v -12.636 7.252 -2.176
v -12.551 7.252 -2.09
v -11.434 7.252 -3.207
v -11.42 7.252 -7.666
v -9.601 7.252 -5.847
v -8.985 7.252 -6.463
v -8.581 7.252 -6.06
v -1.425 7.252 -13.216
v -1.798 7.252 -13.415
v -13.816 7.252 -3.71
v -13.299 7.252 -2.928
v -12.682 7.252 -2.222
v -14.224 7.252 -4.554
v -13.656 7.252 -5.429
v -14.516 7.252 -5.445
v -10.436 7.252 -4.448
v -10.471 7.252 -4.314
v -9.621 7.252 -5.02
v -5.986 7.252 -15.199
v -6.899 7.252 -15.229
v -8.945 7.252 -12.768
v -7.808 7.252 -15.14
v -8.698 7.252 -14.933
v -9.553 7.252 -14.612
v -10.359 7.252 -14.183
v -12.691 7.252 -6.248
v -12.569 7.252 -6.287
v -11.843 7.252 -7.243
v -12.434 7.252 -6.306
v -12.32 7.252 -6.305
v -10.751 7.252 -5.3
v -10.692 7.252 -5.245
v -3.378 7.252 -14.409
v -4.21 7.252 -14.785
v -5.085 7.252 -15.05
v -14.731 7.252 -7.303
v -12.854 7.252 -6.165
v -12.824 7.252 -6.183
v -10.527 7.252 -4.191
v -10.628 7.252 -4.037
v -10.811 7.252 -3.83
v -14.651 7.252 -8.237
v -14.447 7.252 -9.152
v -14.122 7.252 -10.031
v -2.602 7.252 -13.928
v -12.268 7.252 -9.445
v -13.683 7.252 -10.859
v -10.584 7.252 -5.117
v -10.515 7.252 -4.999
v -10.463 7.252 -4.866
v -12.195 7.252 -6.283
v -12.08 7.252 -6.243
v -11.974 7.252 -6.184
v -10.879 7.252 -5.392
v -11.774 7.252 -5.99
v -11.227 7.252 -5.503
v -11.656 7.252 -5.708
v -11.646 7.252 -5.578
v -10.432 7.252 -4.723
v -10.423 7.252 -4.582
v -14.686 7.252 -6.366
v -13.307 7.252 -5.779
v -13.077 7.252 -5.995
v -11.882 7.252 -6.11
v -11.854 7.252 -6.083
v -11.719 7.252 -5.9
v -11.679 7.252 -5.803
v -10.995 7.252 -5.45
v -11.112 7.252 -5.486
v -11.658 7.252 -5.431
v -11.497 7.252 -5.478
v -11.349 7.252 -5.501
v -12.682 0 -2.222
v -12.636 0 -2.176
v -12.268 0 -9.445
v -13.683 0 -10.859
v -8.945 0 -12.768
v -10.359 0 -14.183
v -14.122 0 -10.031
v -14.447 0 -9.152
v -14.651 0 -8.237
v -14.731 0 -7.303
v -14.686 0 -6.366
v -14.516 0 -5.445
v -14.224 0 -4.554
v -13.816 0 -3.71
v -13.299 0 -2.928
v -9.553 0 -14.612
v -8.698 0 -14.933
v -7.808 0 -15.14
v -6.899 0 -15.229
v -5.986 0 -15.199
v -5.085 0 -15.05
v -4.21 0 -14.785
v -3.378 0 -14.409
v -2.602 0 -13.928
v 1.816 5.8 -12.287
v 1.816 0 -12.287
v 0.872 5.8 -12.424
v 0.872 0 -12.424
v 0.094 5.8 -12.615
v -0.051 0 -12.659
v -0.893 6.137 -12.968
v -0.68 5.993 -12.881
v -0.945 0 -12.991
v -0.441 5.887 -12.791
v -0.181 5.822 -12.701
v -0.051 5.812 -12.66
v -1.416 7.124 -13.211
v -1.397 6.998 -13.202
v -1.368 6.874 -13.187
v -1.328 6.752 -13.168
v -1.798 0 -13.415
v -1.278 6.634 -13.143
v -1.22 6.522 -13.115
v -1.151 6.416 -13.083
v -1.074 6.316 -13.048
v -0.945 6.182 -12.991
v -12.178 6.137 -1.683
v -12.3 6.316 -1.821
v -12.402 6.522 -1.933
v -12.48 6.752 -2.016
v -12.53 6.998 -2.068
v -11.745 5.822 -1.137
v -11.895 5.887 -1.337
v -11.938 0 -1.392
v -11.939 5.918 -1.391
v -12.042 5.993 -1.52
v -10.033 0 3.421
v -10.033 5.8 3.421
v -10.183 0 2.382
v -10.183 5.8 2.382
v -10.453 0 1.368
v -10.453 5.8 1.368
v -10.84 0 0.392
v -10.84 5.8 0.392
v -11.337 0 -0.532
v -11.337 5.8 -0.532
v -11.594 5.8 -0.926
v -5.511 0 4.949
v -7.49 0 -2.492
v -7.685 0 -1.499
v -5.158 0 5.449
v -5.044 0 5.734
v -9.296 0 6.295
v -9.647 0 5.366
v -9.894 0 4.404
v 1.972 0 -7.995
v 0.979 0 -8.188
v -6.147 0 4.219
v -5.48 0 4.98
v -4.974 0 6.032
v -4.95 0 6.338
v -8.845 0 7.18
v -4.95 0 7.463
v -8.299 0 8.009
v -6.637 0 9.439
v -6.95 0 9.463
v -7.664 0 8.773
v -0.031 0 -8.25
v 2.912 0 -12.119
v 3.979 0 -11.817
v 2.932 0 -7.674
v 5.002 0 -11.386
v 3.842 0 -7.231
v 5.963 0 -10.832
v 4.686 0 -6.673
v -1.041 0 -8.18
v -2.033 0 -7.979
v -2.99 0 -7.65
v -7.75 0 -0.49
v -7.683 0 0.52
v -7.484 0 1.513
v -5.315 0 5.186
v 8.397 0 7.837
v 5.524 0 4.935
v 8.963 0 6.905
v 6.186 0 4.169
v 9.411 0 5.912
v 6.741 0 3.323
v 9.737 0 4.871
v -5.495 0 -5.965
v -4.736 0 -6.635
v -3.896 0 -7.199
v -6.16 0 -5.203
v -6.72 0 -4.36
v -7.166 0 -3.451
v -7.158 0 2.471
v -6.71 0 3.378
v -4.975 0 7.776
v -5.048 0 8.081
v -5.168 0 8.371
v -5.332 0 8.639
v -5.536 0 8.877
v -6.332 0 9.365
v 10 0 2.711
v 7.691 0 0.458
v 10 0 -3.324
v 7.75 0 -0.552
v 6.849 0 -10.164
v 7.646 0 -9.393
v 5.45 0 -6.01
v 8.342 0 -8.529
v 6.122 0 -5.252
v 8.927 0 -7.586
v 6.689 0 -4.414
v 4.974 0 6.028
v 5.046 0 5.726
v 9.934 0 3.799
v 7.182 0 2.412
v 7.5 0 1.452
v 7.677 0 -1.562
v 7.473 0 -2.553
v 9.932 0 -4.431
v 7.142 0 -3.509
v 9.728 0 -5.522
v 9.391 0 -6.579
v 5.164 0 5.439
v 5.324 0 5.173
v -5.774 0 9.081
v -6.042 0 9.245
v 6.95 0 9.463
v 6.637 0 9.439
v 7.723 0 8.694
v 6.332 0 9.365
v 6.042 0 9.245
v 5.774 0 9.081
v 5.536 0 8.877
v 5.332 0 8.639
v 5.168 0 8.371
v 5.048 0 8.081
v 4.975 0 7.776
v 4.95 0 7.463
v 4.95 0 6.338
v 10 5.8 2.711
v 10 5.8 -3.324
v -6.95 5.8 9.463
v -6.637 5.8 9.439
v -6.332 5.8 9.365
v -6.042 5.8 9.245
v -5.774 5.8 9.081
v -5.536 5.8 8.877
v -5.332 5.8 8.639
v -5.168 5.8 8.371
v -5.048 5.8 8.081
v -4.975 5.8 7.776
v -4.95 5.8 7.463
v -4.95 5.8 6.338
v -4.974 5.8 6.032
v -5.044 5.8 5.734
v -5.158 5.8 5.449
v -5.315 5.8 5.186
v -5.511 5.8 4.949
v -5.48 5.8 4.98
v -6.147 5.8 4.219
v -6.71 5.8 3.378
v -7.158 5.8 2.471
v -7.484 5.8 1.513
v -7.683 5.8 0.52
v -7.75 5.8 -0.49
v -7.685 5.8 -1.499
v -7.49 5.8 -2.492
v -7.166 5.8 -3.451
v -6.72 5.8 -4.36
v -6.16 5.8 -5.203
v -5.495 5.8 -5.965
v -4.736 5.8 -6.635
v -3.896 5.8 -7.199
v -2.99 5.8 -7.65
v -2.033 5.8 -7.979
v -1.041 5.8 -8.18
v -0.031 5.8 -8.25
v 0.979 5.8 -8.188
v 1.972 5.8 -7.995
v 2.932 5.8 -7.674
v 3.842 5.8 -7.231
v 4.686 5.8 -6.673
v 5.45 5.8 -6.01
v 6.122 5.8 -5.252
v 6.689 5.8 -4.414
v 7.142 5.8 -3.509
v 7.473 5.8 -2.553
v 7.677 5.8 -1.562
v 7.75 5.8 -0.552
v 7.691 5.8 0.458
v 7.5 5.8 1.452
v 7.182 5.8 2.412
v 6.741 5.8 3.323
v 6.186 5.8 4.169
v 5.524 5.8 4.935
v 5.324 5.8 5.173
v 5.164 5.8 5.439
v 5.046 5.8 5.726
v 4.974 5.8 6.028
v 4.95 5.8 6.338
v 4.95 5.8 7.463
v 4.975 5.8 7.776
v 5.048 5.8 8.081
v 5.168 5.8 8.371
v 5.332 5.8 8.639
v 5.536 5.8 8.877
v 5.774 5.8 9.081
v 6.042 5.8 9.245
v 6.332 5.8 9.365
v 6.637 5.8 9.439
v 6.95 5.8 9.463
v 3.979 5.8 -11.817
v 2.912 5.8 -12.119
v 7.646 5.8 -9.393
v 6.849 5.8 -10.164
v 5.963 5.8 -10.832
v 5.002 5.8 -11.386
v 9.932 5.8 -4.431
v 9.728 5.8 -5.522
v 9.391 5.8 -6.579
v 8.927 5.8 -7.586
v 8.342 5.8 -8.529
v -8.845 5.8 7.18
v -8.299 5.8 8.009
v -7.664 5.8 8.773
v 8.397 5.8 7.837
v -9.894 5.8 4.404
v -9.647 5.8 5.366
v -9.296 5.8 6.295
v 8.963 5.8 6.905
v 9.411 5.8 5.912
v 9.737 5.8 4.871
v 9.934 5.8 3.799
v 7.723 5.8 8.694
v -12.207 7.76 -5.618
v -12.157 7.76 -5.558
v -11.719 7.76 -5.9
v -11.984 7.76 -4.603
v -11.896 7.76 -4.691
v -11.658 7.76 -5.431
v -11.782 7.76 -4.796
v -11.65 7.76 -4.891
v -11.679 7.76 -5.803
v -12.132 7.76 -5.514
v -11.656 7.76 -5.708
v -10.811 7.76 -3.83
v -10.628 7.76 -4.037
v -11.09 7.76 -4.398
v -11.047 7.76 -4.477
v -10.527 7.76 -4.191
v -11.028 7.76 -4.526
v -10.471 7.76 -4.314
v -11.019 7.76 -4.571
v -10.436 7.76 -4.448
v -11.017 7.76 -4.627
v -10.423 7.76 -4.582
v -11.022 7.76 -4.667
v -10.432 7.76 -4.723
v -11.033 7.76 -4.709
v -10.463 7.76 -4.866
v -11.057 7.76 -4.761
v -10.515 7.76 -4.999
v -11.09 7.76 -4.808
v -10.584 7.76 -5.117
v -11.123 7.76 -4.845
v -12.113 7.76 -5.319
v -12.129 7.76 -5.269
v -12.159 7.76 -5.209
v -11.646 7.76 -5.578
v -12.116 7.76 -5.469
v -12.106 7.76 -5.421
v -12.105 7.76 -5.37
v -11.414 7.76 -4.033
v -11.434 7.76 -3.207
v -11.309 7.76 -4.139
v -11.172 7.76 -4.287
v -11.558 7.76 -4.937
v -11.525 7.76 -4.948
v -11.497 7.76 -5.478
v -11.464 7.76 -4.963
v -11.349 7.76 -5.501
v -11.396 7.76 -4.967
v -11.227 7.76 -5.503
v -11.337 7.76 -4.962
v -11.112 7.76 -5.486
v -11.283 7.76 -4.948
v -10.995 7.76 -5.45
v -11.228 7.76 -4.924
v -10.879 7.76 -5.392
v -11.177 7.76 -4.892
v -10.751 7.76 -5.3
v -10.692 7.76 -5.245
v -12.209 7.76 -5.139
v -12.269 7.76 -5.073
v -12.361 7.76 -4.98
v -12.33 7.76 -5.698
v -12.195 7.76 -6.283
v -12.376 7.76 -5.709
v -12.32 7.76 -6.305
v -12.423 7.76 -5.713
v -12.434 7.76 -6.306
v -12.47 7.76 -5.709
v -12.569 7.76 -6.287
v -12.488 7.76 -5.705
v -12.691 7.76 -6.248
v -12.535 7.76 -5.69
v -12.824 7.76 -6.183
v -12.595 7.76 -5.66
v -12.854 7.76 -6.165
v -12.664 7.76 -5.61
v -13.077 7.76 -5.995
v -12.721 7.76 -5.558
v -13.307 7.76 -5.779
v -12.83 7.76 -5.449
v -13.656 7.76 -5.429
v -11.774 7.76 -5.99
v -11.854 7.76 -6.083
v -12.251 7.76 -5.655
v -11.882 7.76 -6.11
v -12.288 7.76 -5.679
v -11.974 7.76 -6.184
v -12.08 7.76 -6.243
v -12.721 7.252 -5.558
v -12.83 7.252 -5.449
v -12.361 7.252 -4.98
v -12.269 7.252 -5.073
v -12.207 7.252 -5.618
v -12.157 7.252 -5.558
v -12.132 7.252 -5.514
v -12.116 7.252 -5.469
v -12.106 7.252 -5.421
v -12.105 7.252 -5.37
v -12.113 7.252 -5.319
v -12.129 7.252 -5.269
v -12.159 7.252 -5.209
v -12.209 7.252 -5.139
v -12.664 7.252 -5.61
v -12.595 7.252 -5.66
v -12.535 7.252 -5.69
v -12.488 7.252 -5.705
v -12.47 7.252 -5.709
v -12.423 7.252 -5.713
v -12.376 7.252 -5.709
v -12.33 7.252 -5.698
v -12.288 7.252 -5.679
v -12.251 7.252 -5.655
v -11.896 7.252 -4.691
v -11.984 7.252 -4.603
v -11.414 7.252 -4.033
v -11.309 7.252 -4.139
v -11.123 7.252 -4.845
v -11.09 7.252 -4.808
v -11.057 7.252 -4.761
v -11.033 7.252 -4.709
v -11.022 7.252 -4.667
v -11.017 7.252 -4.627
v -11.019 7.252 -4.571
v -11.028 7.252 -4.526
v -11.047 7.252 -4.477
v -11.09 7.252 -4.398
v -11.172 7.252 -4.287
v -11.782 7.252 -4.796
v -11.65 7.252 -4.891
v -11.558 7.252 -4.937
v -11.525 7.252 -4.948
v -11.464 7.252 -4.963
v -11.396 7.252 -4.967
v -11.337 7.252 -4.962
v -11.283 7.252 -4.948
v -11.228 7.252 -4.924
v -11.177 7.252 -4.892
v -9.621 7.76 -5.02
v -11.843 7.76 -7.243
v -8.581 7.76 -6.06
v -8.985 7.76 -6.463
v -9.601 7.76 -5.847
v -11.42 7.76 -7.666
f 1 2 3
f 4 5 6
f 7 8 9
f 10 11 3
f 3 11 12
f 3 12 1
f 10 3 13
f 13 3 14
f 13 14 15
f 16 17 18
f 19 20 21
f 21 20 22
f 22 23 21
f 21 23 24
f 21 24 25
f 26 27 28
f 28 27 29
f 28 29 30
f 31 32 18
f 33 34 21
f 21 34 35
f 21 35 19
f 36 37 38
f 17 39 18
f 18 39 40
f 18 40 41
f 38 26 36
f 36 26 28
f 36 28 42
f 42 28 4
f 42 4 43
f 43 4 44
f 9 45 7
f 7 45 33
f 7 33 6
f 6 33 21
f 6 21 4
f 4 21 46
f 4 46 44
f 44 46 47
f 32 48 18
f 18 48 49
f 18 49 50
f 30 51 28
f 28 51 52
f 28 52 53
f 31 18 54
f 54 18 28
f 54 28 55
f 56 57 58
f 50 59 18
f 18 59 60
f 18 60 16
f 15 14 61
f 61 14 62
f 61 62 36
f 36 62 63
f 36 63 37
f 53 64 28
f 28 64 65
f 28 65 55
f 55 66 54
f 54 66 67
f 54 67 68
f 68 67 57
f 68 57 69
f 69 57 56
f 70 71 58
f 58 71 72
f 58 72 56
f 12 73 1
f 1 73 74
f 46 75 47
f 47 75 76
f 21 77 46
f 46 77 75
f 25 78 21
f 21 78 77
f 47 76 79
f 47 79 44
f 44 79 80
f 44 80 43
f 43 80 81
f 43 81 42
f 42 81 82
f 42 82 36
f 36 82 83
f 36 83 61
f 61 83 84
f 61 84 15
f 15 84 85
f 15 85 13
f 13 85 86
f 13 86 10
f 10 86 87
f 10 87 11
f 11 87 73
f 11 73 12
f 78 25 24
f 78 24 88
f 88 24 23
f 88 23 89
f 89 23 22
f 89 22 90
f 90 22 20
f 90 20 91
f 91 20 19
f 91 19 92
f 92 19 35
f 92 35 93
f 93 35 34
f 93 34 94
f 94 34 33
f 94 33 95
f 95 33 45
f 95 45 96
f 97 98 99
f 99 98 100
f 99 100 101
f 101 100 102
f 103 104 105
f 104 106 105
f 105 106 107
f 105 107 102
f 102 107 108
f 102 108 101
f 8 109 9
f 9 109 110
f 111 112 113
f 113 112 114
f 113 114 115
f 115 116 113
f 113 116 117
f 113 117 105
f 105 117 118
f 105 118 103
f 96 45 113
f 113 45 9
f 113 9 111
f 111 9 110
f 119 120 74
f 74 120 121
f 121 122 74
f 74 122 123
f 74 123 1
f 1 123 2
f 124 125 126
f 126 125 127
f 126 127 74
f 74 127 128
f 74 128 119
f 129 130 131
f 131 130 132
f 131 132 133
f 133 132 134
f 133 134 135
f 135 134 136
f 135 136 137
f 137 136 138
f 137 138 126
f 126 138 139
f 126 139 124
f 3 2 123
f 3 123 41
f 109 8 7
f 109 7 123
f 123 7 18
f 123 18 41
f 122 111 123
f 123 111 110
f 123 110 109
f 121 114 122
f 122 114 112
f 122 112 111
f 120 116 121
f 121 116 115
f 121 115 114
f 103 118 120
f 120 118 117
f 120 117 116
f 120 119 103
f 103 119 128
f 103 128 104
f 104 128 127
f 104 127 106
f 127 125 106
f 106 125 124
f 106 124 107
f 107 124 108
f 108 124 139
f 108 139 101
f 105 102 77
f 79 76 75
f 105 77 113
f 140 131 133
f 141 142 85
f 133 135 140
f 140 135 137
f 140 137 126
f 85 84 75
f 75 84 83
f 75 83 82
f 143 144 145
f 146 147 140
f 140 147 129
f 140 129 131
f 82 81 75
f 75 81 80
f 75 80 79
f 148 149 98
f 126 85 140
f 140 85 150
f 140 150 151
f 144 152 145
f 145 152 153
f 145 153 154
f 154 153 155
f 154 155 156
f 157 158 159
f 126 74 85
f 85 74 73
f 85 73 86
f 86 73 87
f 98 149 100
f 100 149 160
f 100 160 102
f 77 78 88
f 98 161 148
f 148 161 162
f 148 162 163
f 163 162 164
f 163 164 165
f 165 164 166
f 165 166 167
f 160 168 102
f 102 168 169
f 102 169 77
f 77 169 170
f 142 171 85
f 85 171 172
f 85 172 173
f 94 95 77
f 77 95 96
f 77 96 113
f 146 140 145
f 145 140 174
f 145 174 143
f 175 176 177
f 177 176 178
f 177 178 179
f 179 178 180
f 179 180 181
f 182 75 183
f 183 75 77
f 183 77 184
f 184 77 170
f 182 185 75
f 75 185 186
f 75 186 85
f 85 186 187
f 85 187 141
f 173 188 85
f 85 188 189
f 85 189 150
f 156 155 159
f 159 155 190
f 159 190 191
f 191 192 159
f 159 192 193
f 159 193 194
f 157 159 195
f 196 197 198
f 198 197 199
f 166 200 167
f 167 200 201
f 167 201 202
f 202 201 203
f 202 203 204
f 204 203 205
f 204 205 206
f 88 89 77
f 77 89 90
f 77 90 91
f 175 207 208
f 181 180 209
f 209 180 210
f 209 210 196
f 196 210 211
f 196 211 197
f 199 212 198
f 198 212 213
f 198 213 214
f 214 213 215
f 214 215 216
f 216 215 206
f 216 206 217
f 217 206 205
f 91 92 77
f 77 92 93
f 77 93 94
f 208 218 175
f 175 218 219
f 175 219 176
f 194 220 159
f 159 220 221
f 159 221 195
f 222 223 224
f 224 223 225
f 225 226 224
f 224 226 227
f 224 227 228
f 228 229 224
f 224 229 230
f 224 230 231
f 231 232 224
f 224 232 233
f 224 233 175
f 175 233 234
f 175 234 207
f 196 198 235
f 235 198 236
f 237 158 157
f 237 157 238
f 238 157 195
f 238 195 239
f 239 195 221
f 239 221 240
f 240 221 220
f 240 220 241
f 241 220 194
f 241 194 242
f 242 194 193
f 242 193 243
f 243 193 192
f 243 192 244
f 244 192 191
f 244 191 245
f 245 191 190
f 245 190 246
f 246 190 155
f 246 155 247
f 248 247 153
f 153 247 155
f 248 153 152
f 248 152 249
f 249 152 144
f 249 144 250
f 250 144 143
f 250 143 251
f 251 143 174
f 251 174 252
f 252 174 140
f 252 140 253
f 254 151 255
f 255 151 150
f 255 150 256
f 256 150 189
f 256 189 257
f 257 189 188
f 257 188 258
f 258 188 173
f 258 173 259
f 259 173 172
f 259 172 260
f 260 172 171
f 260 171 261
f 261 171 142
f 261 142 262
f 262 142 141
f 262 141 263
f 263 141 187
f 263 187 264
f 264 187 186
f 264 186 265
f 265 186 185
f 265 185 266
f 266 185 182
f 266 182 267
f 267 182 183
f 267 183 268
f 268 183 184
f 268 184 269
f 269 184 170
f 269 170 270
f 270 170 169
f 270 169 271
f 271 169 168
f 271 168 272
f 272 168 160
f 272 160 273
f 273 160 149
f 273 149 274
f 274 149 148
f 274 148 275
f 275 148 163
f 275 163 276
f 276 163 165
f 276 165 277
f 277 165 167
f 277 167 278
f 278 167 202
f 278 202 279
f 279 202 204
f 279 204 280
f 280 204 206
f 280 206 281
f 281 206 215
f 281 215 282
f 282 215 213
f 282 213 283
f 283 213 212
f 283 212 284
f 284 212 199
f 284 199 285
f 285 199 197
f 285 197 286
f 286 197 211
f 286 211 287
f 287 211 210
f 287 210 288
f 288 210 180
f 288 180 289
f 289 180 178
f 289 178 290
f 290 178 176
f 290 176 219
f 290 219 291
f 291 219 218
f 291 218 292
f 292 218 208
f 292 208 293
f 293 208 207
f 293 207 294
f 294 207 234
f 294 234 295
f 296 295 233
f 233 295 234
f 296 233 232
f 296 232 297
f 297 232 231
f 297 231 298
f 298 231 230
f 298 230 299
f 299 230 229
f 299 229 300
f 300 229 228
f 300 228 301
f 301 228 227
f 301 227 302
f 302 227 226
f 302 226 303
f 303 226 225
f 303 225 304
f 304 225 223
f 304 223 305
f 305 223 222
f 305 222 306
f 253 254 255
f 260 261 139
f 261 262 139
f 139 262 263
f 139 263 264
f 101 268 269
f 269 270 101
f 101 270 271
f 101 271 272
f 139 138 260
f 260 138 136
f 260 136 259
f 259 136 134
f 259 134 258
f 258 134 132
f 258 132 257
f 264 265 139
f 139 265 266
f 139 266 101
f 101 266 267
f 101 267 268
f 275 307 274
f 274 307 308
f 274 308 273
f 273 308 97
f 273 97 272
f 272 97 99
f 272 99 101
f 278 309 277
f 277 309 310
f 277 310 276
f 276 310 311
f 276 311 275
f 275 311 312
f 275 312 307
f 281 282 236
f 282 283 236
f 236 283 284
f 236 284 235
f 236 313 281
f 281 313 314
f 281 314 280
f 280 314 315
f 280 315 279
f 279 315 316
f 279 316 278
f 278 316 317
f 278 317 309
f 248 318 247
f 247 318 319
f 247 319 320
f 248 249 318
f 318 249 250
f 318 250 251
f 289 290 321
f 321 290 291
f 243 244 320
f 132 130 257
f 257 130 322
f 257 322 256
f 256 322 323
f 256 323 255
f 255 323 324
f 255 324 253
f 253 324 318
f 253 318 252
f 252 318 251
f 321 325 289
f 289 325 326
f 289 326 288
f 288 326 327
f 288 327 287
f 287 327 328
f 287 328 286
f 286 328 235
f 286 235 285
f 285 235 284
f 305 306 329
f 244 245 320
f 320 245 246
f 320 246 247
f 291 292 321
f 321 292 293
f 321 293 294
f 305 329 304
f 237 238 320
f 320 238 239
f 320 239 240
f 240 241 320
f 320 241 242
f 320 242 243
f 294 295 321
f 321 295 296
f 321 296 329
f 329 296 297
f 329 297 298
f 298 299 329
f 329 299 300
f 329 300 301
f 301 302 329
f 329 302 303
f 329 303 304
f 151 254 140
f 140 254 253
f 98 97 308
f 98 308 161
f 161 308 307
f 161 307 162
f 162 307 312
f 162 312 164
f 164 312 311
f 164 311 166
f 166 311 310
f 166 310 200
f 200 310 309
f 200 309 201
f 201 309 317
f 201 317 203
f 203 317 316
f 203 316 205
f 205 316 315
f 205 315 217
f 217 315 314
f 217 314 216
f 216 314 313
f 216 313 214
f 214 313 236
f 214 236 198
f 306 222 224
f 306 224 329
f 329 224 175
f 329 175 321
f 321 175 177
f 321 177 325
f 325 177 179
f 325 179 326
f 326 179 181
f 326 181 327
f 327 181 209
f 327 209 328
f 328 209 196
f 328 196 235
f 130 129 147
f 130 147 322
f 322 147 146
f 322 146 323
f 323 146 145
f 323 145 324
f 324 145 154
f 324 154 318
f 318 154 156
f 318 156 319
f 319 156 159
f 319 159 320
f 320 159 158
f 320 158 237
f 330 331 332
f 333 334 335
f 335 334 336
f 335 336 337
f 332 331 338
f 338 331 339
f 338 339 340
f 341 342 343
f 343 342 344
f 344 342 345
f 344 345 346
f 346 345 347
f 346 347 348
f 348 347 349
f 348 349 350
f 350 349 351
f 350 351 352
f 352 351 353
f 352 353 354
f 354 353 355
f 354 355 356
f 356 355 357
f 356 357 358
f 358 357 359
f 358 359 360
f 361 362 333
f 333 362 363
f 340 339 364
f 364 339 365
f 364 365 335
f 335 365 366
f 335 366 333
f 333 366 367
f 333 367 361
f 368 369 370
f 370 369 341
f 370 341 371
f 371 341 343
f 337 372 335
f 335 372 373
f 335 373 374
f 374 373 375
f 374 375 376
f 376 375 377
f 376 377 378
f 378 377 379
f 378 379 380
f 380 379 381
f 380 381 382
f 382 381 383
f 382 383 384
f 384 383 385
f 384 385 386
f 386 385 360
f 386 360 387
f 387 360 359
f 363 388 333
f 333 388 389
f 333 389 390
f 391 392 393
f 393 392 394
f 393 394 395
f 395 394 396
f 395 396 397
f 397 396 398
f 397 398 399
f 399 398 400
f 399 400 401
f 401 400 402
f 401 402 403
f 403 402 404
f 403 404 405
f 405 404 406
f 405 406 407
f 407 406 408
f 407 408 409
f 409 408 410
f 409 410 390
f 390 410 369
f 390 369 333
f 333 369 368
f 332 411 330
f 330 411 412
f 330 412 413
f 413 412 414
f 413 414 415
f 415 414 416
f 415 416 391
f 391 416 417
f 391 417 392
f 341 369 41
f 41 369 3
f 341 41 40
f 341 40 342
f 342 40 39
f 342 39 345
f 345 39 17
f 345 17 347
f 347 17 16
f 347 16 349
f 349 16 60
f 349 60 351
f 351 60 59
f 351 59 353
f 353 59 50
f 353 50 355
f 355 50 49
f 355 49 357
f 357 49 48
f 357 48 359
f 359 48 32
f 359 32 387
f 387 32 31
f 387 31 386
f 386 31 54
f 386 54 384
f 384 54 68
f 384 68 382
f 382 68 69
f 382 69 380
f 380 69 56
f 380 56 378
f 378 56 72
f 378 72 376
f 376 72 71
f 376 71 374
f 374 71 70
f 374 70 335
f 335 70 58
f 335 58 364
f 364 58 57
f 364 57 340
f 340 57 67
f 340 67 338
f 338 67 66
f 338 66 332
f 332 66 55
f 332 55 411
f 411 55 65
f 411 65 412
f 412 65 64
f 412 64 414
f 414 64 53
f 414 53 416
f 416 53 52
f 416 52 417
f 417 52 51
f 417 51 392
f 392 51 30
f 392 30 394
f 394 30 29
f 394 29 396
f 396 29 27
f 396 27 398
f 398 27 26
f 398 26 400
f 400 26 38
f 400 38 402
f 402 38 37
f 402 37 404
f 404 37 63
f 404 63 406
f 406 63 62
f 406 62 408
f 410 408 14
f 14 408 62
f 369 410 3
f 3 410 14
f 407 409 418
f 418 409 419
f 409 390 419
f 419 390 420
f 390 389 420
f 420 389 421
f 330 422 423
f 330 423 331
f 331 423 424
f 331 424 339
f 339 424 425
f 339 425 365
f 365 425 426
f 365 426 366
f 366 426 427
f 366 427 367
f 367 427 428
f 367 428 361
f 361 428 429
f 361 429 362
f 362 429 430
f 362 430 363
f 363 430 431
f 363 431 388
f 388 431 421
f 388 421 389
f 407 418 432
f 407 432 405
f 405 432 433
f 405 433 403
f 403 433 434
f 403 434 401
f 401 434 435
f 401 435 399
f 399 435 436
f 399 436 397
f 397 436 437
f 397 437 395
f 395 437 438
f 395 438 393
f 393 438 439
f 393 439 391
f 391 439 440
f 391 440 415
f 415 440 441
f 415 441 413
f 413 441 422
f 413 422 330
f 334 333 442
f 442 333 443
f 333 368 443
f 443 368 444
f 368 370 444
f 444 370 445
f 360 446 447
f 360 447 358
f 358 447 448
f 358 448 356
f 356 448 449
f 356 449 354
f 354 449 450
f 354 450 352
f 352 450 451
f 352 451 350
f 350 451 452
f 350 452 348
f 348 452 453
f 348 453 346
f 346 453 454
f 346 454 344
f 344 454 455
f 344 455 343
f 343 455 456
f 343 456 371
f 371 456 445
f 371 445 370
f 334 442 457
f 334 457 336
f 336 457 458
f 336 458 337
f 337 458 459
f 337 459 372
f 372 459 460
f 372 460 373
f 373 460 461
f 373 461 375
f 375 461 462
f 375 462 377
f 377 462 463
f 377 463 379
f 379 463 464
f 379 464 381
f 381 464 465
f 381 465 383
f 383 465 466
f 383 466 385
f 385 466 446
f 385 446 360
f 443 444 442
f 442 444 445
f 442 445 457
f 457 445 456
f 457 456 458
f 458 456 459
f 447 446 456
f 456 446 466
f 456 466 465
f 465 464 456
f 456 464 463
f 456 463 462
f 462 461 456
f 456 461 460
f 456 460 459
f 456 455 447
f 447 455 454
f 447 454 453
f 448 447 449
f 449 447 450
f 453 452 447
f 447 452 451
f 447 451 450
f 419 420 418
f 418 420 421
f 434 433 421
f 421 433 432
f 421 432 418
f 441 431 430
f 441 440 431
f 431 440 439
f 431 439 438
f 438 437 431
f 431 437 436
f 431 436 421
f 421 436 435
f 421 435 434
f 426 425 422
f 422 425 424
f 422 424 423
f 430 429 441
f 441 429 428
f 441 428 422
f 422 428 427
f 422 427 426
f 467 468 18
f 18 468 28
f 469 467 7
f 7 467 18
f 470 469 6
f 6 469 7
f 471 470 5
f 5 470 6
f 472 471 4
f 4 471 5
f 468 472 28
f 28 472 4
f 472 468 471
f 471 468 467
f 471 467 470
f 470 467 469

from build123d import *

# Parameters (mm, degrees)
BOSS_EXTRUDE1_DEPTH     = 5.8
BOSS_EXTRUDE2_START     = -5.8
BOSS_EXTRUDE2_DEPTH     = 5.8
BOSS_EXTRUDE3_DEPTH     = 4.5
CUT_EXTRUDE1_DEPTH      = 26.767293083
CUT_EXTRUDE1_DEPTH_BACK = 26.767293083
FILLET6_R               = 7
FILLET7_R               = 7
FILLET8_R               = 9
FILLET9_R               = 9
FILLET10_R              = 9
FILLET11_R              = 9
FILLET12_DEPTH          = 5.8
FILLET13_R              = 1.5
SKETCH11_W              = 22.477586639
SKETCH11_H              = 16.715029759
CUT_EXTRUDE3_DEPTH      = 3.048
BOSS_EXTRUDE4_DEPTH     = 0.508


with BuildPart() as part:
    # Sketch1 → Boss-Extrude1 (new body)
    with BuildSketch(Plane(origin=(0, 0, 0), x_dir=(1, 0, 0), z_dir=(0, 1, 0))):
        with BuildLine():
            Line((10, 12.25), (-10, 12.25))
            Line((-10, 12.25), (-10, -7.463220606))
            Line((-10, -7.463220606), (-10, -9.463220606))
            Line((-10, -9.463220606), (-8, -9.463220606))
            Line((-8, -9.463220606), (-6.95, -9.463220606))
            ThreePointArc((-6.95, -9.463220606), (-5.535786438, -8.877434169), (-4.95, -7.463220606))
            Line((-4.95, -7.463220606), (-4.95, -6.338128399))
            ThreePointArc((-4.95, -6.338128399), (-5.099151269, -5.580263652), (-5.524358974, -4.935435394))
            ThreePointArc((-5.524358974, -4.935435394), (0, 8.25), (5.524358974, -4.935435394))
            ThreePointArc((5.524358974, -4.935435394), (5.099151269, -5.580263652), (4.95, -6.338128399))
            Line((4.95, -6.338128399), (4.95, -7.463220606))
            ThreePointArc((4.95, -7.463220606), (5.535786438, -8.877434169), (6.95, -9.463220606))
            Line((6.95, -9.463220606), (8, -9.463220606))
            Line((8, -9.463220606), (10, -9.463220606))
            Line((10, -9.463220606), (10, -7.463220606))
            Line((10, -7.463220606), (10, 12.25))
        make_face()
    extrude(amount=BOSS_EXTRUDE1_DEPTH)

    # Sketch5 → Boss-Extrude2 (add)
    with BuildSketch(Plane(origin=(0, 5.8, 0), x_dir=(1, 0, 0), z_dir=(0, 1, 0)).offset(BOSS_EXTRUDE2_START)):
        with BuildLine():
            Line((5.480077554, 5.980077554), (-6.540737726, 18.000892834))
            Line((-6.540737726, 18.000892834), (-17.500892834, 7.040737726))
            Line((-17.500892834, 7.040737726), (-5.480077554, -4.980077554))
            ThreePointArc((-5.480077554, -4.980077554), (-5.480077554, 5.980077554), (5.480077554, 5.980077554))
        make_face()
    extrude(amount=BOSS_EXTRUDE2_DEPTH)

    # Sketch7 → Boss-Extrude3 (add)
    with BuildSketch(Plane(origin=(0, 5.8, 0), x_dir=(1, 0, 0), z_dir=(0, 1, 0))):
        Polygon((-1.590990258, 13.051145366), (-6.540737726, 18.000892834), (-17.500892834, 7.040737726), (-12.551145366, 2.090990258), align=None)
    extrude(amount=BOSS_EXTRUDE3_DEPTH)

    # Sketch8 → Cut-Extrude1 (cut, two sides: drawn at the far end of the back side and taken through both)
    with BuildSketch(Plane(origin=(0, 5.8, 0), x_dir=(1, 0, 0), z_dir=(0, 1, 0)).offset(-CUT_EXTRUDE1_DEPTH_BACK)):
        Polygon((-10.359114344, 14.182516216), (-8.944900782, 12.768302654), (-12.268302654, 9.444900782), (-13.682516216, 10.859114344), align=None)
    extrude(amount=CUT_EXTRUDE1_DEPTH + CUT_EXTRUDE1_DEPTH_BACK, mode=Mode.SUBTRACT)

    # Fillet6
    # the kernel refuses this fillet: 7 mm, written as the material it takes off along each edge
    with BuildSketch(Plane(origin=(-17.500892834, -17.036725037, -7.040737726), x_dir=(0.7071067811865471, 0, 0.707106781186548), z_dir=(0, 1, 0))) as fillet6_piece_1:
        with BuildLine():
            CenterArc((6.814690015, 7), FILLET6_R, 193.21298036, 76.78701964)
            Line((0, 5.4), (-0.1362938, 5.368))
            ThreePointArc((-0.1362938, 5.368), (-0.14, 2.7), (-0.14, 0))
            Line((-0.14, 0), (0, -0.14))
            Line((0, -0.14), (6.814690015, -0.14))
            Line((6.814690015, -0.14), (6.814690015, 0))
        make_face()
    extrude(amount=44.373450075, mode=Mode.SUBTRACT)

    # Fillet7
    # the kernel refuses this fillet: 7 mm, written as the material it takes off along each edge
    with BuildSketch(Plane(origin=(-6.540737726, -17.036725037, -18.000892834), x_dir=(-0.7071067811865467, 0, 0.7071067811865485), z_dir=(0, 1, 0))) as fillet7_piece_1:
        with BuildLine():
            CenterArc((7, 6.814690015), FILLET7_R, 180, 76.78701964)
            Line((0, 6.814690015), (-0.14, 6.814690015))
            Line((-0.14, 6.814690015), (-0.14, 0))
            Line((-0.14, 0), (0, -0.14))
            ThreePointArc((0, -0.14), (2.7, -0.14), (5.368, -0.1362938))
            Line((5.368, -0.1362938), (5.4, 0))
        make_face()
    extrude(amount=44.373450075, mode=Mode.SUBTRACT)

    # Fillet8
    # the kernel refuses this fillet: 9 mm, written as the material it adds along each edge
    with BuildSketch(Plane(origin=(-0.789844892, 14.352294771, -12.25), x_dir=(-0.7337802799425581, 0, -0.6793868564870981), z_dir=(0, -1, 0))) as fillet8_piece_1_section:
        with BuildLine():
            CenterArc((3.604279608, 8.928149184), FILLET8_R, 227.204251593, 35.551028785)
            Line((-2.510202101, 2.324126664), (-3.121650271, 1.663724412))
            Line((-3.121650271, 1.663724412), (-0.611448171, -0.660402252))
            Line((-0.611448171, -0.660402252), (0.034615763, -0.899334059))
            ThreePointArc((0.034615763, -0.899334059), (1.351940933, -0.848629634), (2.355814908, -0.892814918))
            Line((2.355814908, -0.892814918), (2.469311699, 0))
        make_face()
    fillet8_piece_1 = extrude(amount=14.352294771, mode=Mode.PRIVATE)
    fillet8_piece_1 = split(fillet8_piece_1, bisect_by=Plane(origin=(-0.789844892, 5.8, -12.25), z_dir=(0, 1, 0)), keep=Keep.TOP, mode=Mode.PRIVATE)
    fillet8_piece_1 = split(fillet8_piece_1, bisect_by=Plane(origin=(-0.789844892, 10.3, -12.25), z_dir=(0, -1, 0)), keep=Keep.TOP, mode=Mode.PRIVATE)
    fillet8_piece_1 = split(fillet8_piece_1, bisect_by=Plane(origin=(-1.590990258, 14.352294771, -13.051145366), z_dir=(-0.7071067811865475, 0, -0.7071067811865476)), keep=Keep.TOP, mode=Mode.PRIVATE)
    add(fillet8_piece_1)
    with BuildSketch(Plane(origin=(-0.789844892, 5.8, -12.25), x_dir=(-0.7337802799425581, 0, -0.6793868564870981), z_dir=(0, -1, 0))) as fillet8_piece_2_section:
        with BuildLine():
            CenterArc((3.604279608, 8.928149184), FILLET8_R, 227.204251593, 35.551028785)
            Line((-2.510202101, 2.324126664), (-3.121650271, 1.663724412))
            Line((-3.121650271, 1.663724412), (-0.611448171, -0.660402252))
            Line((-0.611448171, -0.660402252), (0.034615763, -0.899334059))
            ThreePointArc((0.034615763, -0.899334059), (1.351940933, -0.848629634), (2.355814908, -0.892814918))
            Line((2.355814908, -0.892814918), (2.469311699, 0))
        make_face()
    fillet8_piece_2 = extrude(amount=5.8, mode=Mode.PRIVATE)
    fillet8_piece_2 = split(fillet8_piece_2, bisect_by=Plane(origin=(-1.590990258, 5.8, -13.051145366), z_dir=(-0.7071067811865475, 0, -0.7071067811865476)), keep=Keep.TOP, mode=Mode.PRIVATE)
    add(fillet8_piece_2)
    with BuildSketch(Plane(origin=(-0.789844892, 5.8, -12.25), x_dir=(-0.7337802799425581, 0, -0.6793868564870981), z_dir=(0, -1, 0))) as fillet8_piece_3_section:
        with BuildLine():
            CenterArc((3.604279608, 8.928149184), FILLET8_R, 227.204251593, 35.551028785)
            Line((-2.510202101, 2.324126664), (-3.121650271, 1.663724412))
            Line((-3.121650271, 1.663724412), (-0.611448171, -0.660402252))
            Line((-0.611448171, -0.660402252), (0.034615763, -0.899334059))
            ThreePointArc((0.034615763, -0.899334059), (1.351940933, -0.848629634), (2.355814908, -0.892814918))
            Line((2.355814908, -0.892814918), (2.469311699, 0))
        make_face()
    fillet8_piece_3 = extrude(amount=5.8, mode=Mode.PRIVATE)
    fillet8_piece_3 = split(fillet8_piece_3, bisect_by=Plane(origin=(-1.590990258, 5.8, -13.051145366), z_dir=(0.7071067811865475, 0, 0.7071067811865476)), keep=Keep.TOP, mode=Mode.PRIVATE)
    add(fillet8_piece_3)

    # Fillet9
    fillet9_edges = [part.edges().sort_by_distance(p)[0] for p in [
        (10, 2.9, -12.25),
    ]]
    fillet(fillet9_edges, radius=FILLET9_R)

    # Fillet10
    fillet10_edges = [part.edges().sort_by_distance(p)[0] for p in [
        (-10, 2.9, 0.460155108),
    ]]
    fillet(fillet10_edges, radius=FILLET10_R)

    # Fillet11
    # the kernel refuses this fillet: 9 mm, written as the material it takes off along each edge
    with BuildSketch(Plane(origin=(10, -16.881480237, 9.463220606), x_dir=(0, 0, -1), z_dir=(0, 1, 0))) as fillet11_piece_1:
        with BuildLine():
            CenterArc((6.752592095, 9), FILLET11_R, 221.384667587, 48.615332413)
            Line((0, 3.05), (0, 0))
            Line((0, 0), (6.752592095, 0))
        make_face()
    extrude(amount=39.562960474, mode=Mode.SUBTRACT)

    # Fillet12: read off the stored shape, not the designer's step
    # Fillet12 outline → Fillet12 (cut)
    with BuildSketch(Plane(origin=(0, 0, 0), x_dir=(1, 0, 0), z_dir=(0, 1, 0))):
        with BuildLine():
            Line((-10, -9.463220606), (-6.95, -9.463220606))
            ThreePointArc((-6.95, -9.463220606), (-9.082460071, -6.743546791), (-10.032769562, -3.42075828))
            ThreePointArc((-10.032769562, -3.42075828), (-10.008196123, -3.804068015), (-10, -4.18807717))
            Line((-10, -4.18807717), (-10, -9.463220606))
        make_face()
    extrude(amount=FILLET12_DEPTH, mode=Mode.SUBTRACT)

    # Fillet13
    fillet13_edges = [part.edges().sort_by_distance(p)[0] for p in [
        (-6.988797537, 5.8, -7.653338087),
    ]]
    fillet(fillet13_edges, radius=FILLET13_R)

    # Sketch11 → Cut-Extrude3 (cut)
    with BuildSketch(Plane(origin=(0, 10.3, 0), x_dir=(1, 0, 0), z_dir=(0, 1, 0))):
        with Locations((-8.183279801, 8.85751488)):
            Rectangle(SKETCH11_W, SKETCH11_H)
    extrude(amount=-CUT_EXTRUDE3_DEPTH, mode=Mode.SUBTRACT)

    # Sketch12 → Boss-Extrude4 (add)
    # profile 1 of 2: a face of its own
    with BuildSketch(Plane(origin=(0, 7.252, 0), x_dir=(1, 0, 0), z_dir=(0, 1, 0))):
        with BuildLine():
            Line((-11.433918494, 3.207130735), (-13.656164087, 5.429376328))
            Line((-13.656164087, 5.429376328), (-13.306990409, 5.778550006))
            add(Edge.make_bspline(
                [(-13.306990409, 5.778550006), (-13.282454925, 5.802776429), (-13.234978761, 5.849654556), (-13.165425965, 5.916476582), (-13.098874205, 5.976521512), (-13.036503263, 6.030151615), (-12.978079516, 6.077802204), (-12.923873082, 6.119198581), (-12.872751416, 6.153785376), (-12.839393353, 6.173658456), (-12.823617012, 6.183057218)],
                knots=[0, 0, 0, 0, 1.309509407, 2.53390071, 3.662611673, 4.713207521, 5.65757546, 6.525538268, 7.302669039, 8, 8, 8, 8], degree=3))
            add(Edge.make_bspline(
                [(-12.823617012, 6.183057218), (-12.802788726, 6.194609559), (-12.761621022, 6.217443093), (-12.697895295, 6.245762593), (-12.634133803, 6.269757801), (-12.56983835, 6.287547266), (-12.505336684, 6.299591985), (-12.440703357, 6.30663579), (-12.375602361, 6.30874407), (-12.310534388, 6.304682079), (-12.246186103, 6.296126998), (-12.183706133, 6.281210456), (-12.123192616, 6.26165718), (-12.064977726, 6.236536624), (-12.008583815, 6.206665212), (-11.954657564, 6.170648612), (-11.90197945, 6.130230589), (-11.86992907, 6.099017275), (-11.853690129, 6.08320245)],
                knots=[0, 0, 0, 0, 1.084350962, 2.143250767, 3.172862443, 4.184936649, 5.177333569, 6.158390596, 7.143762693, 8.140051288, 9.124666062, 10.096699818, 11.061657142, 12.017683079, 12.981044671, 13.963953334, 14.96839786, 16, 16, 16, 16], degree=3))
            add(Edge.make_bspline(
                [(-11.853690129, 6.08320245), (-11.833695098, 6.061786816), (-11.794496473, 6.019803215), (-11.744824985, 5.950445998), (-11.706053697, 5.876556968), (-11.675627227, 5.798838873), (-11.654783836, 5.715764393), (-11.646075384, 5.626358621), (-11.645711155, 5.530411251), (-11.653667868, 5.464730746), (-11.657796699, 5.430648363)],
                knots=[0, 0, 0, 0, 0.99067682, 1.942141011, 2.875945802, 3.80710181, 4.760510965, 5.763396677, 6.839400355, 8, 8, 8, 8], degree=3))
            add(Edge.make_bspline(
                [(-11.657796699, 5.430648363), (-11.633275636, 5.438929098), (-11.585409595, 5.455093403), (-11.51376359, 5.47510442), (-11.443865679, 5.489816624), (-11.375836479, 5.499196125), (-11.310000456, 5.504659461), (-11.245981468, 5.504624925), (-11.183832662, 5.499731758), (-11.123495787, 5.489260877), (-11.064806043, 5.474646149), (-11.007384688, 5.455511461), (-10.951320622, 5.43180242), (-10.896328629, 5.404097033), (-10.843692728, 5.370224131), (-10.791123294, 5.333853803), (-10.74086075, 5.291293515), (-10.708700331, 5.26057519), (-10.69232194, 5.244931216)],
                knots=[0, 0, 0, 0, 1.186823522, 2.316724293, 3.409365292, 4.459881737, 5.464350107, 6.43663382, 7.392641392, 8.319733159, 9.241763701, 10.164153021, 11.092314833, 12.031563043, 12.983855256, 13.960407647, 14.961293332, 16, 16, 16, 16], degree=3))
            add(Edge.make_bspline(
                [(-10.69232194, 5.244931216), (-10.662711688, 5.213086008), (-10.604388694, 5.150360848), (-10.534792676, 5.043187191), (-10.481250771, 4.928657287), (-10.444886915, 4.807724635), (-10.424665152, 4.684555752), (-10.42025279, 4.562136178), (-10.433983306, 4.442477202), (-10.458824615, 4.344796), (-10.488499119, 4.267905532), (-10.516741098, 4.208703935), (-10.550346141, 4.148121342), (-10.591037263, 4.086860175), (-10.63742873, 4.02412579), (-10.689537148, 3.959947573), (-10.747842318, 3.894725101), (-10.789674593, 3.851891338), (-10.811257236, 3.829791993)],
                knots=[0, 0, 0, 0, 1.298883416, 2.558396595, 3.804036434, 5.070048068, 6.323350088, 7.528998892, 8.722475042, 9.914652862, 10.533024677, 11.18554826, 11.875496583, 12.603763947, 13.383899814, 14.209016025, 15.075972575, 16, 16, 16, 16], degree=3))
            Line((-10.811257236, 3.829791993), (-11.433918494, 3.207130735))
        make_face()
        with BuildLine():
            Line((-12.829977188, 5.449092875), (-12.361232196, 4.980347883))
            Line((-12.361232196, 4.980347883), (-12.26900964, 5.072570439))
            add(Edge.make_bspline(
                [(-12.26900964, 5.072570439), (-12.245547401, 5.097363095), (-12.201564855, 5.143839654), (-12.151000295, 5.219166085), (-12.11755893, 5.292596724), (-12.102877282, 5.364895711), (-12.105448894, 5.434609358), (-12.123760352, 5.500941866), (-12.1576345, 5.563715502), (-12.190341519, 5.599214265), (-12.20731593, 5.617637546)],
                knots=[0, 0, 0, 0, 1.313990156, 2.46321901, 3.480591621, 4.405417619, 5.280516781, 6.144979895, 7.037274703, 8, 8, 8, 8], degree=3))
            add(Edge.make_bspline(
                [(-12.20731593, 5.617637546), (-12.224715574, 5.633514603), (-12.258139887, 5.664014062), (-12.317275844, 5.695374701), (-12.379628221, 5.712252715), (-12.445412797, 5.71505704), (-12.513687531, 5.700774859), (-12.583309359, 5.669718369), (-12.654035915, 5.621389649), (-12.697848327, 5.57995397), (-12.721218174, 5.557851889)],
                knots=[0, 0, 0, 0, 0.960673721, 1.845431933, 2.708145215, 3.584916116, 4.513733637, 5.535401244, 6.685365794, 8, 8, 8, 8], degree=3))
            Line((-12.721218174, 5.557851889), (-12.829977188, 5.449092875))
        make_face(mode=Mode.SUBTRACT)
        with BuildLine():
            Line((-11.984073743, 4.603189429), (-11.414201948, 4.033317634))
            Line((-11.414201948, 4.033317634), (-11.308623022, 4.13889656))
            add(Edge.make_bspline(
                [(-11.308623022, 4.13889656), (-11.287651539, 4.160125932), (-11.24747336, 4.200798187), (-11.193005753, 4.261936492), (-11.145174295, 4.319119162), (-11.106056354, 4.373922053), (-11.07299492, 4.424655747), (-11.047992974, 4.472337233), (-11.030214568, 4.516833005), (-11.019635078, 4.558588812), (-11.016079733, 4.598440863), (-11.016373314, 4.636687691), (-11.022252608, 4.674146416), (-11.033171282, 4.710421862), (-11.04875569, 4.745741652), (-11.068410481, 4.780342887), (-11.093612184, 4.813514625), (-11.112963719, 4.834232165), (-11.122905874, 4.844876128)],
                knots=[0, 0, 0, 0, 1.721434749, 3.298007816, 4.723251275, 6.020090977, 7.180600004, 8.214633596, 9.120969771, 9.939793866, 10.689556408, 11.423587917, 12.141543794, 12.869125978, 13.603157487, 14.364799764, 15.159890143, 16, 16, 16, 16], degree=3))
            add(Edge.make_bspline(
                [(-11.122905874, 4.844876128), (-11.134742573, 4.856193135), (-11.157993871, 4.878423583), (-11.196466572, 4.906178829), (-11.235979242, 4.929767363), (-11.277807887, 4.946541189), (-11.320437005, 4.959748589), (-11.364765118, 4.966796848), (-11.410425135, 4.967539842), (-11.45764275, 4.96486473), (-11.506603908, 4.95497), (-11.557098065, 4.938110069), (-11.609405881, 4.914253737), (-11.663559766, 4.883449423), (-11.719510391, 4.845612711), (-11.777580747, 4.801132935), (-11.836446723, 4.748415198), (-11.875856498, 4.710586414), (-11.89630331, 4.690959862)],
                knots=[0, 0, 0, 0, 0.878469438, 1.725612497, 2.541894601, 3.343271312, 4.139373348, 4.934905255, 5.743608715, 6.588069601, 7.470073549, 8.417002956, 9.441270676, 10.552701352, 11.758991805, 13.066164284, 14.47785003, 16, 16, 16, 16], degree=3))
            Line((-11.89630331, 4.690959862), (-11.984073743, 4.603189429))
        make_face(mode=Mode.SUBTRACT)
    # profile 2 of 2: a face of its own
    with BuildSketch(Plane(origin=(0, 7.252, 0), x_dir=(1, 0, 0), z_dir=(0, 1, 0))):
        Polygon((-11.84284314, 7.242697276), (-11.419891417, 7.665648998), (-9.600881, 5.846638582), (-8.984579919, 6.462939663), (-8.581344742, 6.059704487), (-9.620597547, 5.020451683), align=None)
    extrude(amount=BOSS_EXTRUDE4_DEPTH)


solid = part.part
